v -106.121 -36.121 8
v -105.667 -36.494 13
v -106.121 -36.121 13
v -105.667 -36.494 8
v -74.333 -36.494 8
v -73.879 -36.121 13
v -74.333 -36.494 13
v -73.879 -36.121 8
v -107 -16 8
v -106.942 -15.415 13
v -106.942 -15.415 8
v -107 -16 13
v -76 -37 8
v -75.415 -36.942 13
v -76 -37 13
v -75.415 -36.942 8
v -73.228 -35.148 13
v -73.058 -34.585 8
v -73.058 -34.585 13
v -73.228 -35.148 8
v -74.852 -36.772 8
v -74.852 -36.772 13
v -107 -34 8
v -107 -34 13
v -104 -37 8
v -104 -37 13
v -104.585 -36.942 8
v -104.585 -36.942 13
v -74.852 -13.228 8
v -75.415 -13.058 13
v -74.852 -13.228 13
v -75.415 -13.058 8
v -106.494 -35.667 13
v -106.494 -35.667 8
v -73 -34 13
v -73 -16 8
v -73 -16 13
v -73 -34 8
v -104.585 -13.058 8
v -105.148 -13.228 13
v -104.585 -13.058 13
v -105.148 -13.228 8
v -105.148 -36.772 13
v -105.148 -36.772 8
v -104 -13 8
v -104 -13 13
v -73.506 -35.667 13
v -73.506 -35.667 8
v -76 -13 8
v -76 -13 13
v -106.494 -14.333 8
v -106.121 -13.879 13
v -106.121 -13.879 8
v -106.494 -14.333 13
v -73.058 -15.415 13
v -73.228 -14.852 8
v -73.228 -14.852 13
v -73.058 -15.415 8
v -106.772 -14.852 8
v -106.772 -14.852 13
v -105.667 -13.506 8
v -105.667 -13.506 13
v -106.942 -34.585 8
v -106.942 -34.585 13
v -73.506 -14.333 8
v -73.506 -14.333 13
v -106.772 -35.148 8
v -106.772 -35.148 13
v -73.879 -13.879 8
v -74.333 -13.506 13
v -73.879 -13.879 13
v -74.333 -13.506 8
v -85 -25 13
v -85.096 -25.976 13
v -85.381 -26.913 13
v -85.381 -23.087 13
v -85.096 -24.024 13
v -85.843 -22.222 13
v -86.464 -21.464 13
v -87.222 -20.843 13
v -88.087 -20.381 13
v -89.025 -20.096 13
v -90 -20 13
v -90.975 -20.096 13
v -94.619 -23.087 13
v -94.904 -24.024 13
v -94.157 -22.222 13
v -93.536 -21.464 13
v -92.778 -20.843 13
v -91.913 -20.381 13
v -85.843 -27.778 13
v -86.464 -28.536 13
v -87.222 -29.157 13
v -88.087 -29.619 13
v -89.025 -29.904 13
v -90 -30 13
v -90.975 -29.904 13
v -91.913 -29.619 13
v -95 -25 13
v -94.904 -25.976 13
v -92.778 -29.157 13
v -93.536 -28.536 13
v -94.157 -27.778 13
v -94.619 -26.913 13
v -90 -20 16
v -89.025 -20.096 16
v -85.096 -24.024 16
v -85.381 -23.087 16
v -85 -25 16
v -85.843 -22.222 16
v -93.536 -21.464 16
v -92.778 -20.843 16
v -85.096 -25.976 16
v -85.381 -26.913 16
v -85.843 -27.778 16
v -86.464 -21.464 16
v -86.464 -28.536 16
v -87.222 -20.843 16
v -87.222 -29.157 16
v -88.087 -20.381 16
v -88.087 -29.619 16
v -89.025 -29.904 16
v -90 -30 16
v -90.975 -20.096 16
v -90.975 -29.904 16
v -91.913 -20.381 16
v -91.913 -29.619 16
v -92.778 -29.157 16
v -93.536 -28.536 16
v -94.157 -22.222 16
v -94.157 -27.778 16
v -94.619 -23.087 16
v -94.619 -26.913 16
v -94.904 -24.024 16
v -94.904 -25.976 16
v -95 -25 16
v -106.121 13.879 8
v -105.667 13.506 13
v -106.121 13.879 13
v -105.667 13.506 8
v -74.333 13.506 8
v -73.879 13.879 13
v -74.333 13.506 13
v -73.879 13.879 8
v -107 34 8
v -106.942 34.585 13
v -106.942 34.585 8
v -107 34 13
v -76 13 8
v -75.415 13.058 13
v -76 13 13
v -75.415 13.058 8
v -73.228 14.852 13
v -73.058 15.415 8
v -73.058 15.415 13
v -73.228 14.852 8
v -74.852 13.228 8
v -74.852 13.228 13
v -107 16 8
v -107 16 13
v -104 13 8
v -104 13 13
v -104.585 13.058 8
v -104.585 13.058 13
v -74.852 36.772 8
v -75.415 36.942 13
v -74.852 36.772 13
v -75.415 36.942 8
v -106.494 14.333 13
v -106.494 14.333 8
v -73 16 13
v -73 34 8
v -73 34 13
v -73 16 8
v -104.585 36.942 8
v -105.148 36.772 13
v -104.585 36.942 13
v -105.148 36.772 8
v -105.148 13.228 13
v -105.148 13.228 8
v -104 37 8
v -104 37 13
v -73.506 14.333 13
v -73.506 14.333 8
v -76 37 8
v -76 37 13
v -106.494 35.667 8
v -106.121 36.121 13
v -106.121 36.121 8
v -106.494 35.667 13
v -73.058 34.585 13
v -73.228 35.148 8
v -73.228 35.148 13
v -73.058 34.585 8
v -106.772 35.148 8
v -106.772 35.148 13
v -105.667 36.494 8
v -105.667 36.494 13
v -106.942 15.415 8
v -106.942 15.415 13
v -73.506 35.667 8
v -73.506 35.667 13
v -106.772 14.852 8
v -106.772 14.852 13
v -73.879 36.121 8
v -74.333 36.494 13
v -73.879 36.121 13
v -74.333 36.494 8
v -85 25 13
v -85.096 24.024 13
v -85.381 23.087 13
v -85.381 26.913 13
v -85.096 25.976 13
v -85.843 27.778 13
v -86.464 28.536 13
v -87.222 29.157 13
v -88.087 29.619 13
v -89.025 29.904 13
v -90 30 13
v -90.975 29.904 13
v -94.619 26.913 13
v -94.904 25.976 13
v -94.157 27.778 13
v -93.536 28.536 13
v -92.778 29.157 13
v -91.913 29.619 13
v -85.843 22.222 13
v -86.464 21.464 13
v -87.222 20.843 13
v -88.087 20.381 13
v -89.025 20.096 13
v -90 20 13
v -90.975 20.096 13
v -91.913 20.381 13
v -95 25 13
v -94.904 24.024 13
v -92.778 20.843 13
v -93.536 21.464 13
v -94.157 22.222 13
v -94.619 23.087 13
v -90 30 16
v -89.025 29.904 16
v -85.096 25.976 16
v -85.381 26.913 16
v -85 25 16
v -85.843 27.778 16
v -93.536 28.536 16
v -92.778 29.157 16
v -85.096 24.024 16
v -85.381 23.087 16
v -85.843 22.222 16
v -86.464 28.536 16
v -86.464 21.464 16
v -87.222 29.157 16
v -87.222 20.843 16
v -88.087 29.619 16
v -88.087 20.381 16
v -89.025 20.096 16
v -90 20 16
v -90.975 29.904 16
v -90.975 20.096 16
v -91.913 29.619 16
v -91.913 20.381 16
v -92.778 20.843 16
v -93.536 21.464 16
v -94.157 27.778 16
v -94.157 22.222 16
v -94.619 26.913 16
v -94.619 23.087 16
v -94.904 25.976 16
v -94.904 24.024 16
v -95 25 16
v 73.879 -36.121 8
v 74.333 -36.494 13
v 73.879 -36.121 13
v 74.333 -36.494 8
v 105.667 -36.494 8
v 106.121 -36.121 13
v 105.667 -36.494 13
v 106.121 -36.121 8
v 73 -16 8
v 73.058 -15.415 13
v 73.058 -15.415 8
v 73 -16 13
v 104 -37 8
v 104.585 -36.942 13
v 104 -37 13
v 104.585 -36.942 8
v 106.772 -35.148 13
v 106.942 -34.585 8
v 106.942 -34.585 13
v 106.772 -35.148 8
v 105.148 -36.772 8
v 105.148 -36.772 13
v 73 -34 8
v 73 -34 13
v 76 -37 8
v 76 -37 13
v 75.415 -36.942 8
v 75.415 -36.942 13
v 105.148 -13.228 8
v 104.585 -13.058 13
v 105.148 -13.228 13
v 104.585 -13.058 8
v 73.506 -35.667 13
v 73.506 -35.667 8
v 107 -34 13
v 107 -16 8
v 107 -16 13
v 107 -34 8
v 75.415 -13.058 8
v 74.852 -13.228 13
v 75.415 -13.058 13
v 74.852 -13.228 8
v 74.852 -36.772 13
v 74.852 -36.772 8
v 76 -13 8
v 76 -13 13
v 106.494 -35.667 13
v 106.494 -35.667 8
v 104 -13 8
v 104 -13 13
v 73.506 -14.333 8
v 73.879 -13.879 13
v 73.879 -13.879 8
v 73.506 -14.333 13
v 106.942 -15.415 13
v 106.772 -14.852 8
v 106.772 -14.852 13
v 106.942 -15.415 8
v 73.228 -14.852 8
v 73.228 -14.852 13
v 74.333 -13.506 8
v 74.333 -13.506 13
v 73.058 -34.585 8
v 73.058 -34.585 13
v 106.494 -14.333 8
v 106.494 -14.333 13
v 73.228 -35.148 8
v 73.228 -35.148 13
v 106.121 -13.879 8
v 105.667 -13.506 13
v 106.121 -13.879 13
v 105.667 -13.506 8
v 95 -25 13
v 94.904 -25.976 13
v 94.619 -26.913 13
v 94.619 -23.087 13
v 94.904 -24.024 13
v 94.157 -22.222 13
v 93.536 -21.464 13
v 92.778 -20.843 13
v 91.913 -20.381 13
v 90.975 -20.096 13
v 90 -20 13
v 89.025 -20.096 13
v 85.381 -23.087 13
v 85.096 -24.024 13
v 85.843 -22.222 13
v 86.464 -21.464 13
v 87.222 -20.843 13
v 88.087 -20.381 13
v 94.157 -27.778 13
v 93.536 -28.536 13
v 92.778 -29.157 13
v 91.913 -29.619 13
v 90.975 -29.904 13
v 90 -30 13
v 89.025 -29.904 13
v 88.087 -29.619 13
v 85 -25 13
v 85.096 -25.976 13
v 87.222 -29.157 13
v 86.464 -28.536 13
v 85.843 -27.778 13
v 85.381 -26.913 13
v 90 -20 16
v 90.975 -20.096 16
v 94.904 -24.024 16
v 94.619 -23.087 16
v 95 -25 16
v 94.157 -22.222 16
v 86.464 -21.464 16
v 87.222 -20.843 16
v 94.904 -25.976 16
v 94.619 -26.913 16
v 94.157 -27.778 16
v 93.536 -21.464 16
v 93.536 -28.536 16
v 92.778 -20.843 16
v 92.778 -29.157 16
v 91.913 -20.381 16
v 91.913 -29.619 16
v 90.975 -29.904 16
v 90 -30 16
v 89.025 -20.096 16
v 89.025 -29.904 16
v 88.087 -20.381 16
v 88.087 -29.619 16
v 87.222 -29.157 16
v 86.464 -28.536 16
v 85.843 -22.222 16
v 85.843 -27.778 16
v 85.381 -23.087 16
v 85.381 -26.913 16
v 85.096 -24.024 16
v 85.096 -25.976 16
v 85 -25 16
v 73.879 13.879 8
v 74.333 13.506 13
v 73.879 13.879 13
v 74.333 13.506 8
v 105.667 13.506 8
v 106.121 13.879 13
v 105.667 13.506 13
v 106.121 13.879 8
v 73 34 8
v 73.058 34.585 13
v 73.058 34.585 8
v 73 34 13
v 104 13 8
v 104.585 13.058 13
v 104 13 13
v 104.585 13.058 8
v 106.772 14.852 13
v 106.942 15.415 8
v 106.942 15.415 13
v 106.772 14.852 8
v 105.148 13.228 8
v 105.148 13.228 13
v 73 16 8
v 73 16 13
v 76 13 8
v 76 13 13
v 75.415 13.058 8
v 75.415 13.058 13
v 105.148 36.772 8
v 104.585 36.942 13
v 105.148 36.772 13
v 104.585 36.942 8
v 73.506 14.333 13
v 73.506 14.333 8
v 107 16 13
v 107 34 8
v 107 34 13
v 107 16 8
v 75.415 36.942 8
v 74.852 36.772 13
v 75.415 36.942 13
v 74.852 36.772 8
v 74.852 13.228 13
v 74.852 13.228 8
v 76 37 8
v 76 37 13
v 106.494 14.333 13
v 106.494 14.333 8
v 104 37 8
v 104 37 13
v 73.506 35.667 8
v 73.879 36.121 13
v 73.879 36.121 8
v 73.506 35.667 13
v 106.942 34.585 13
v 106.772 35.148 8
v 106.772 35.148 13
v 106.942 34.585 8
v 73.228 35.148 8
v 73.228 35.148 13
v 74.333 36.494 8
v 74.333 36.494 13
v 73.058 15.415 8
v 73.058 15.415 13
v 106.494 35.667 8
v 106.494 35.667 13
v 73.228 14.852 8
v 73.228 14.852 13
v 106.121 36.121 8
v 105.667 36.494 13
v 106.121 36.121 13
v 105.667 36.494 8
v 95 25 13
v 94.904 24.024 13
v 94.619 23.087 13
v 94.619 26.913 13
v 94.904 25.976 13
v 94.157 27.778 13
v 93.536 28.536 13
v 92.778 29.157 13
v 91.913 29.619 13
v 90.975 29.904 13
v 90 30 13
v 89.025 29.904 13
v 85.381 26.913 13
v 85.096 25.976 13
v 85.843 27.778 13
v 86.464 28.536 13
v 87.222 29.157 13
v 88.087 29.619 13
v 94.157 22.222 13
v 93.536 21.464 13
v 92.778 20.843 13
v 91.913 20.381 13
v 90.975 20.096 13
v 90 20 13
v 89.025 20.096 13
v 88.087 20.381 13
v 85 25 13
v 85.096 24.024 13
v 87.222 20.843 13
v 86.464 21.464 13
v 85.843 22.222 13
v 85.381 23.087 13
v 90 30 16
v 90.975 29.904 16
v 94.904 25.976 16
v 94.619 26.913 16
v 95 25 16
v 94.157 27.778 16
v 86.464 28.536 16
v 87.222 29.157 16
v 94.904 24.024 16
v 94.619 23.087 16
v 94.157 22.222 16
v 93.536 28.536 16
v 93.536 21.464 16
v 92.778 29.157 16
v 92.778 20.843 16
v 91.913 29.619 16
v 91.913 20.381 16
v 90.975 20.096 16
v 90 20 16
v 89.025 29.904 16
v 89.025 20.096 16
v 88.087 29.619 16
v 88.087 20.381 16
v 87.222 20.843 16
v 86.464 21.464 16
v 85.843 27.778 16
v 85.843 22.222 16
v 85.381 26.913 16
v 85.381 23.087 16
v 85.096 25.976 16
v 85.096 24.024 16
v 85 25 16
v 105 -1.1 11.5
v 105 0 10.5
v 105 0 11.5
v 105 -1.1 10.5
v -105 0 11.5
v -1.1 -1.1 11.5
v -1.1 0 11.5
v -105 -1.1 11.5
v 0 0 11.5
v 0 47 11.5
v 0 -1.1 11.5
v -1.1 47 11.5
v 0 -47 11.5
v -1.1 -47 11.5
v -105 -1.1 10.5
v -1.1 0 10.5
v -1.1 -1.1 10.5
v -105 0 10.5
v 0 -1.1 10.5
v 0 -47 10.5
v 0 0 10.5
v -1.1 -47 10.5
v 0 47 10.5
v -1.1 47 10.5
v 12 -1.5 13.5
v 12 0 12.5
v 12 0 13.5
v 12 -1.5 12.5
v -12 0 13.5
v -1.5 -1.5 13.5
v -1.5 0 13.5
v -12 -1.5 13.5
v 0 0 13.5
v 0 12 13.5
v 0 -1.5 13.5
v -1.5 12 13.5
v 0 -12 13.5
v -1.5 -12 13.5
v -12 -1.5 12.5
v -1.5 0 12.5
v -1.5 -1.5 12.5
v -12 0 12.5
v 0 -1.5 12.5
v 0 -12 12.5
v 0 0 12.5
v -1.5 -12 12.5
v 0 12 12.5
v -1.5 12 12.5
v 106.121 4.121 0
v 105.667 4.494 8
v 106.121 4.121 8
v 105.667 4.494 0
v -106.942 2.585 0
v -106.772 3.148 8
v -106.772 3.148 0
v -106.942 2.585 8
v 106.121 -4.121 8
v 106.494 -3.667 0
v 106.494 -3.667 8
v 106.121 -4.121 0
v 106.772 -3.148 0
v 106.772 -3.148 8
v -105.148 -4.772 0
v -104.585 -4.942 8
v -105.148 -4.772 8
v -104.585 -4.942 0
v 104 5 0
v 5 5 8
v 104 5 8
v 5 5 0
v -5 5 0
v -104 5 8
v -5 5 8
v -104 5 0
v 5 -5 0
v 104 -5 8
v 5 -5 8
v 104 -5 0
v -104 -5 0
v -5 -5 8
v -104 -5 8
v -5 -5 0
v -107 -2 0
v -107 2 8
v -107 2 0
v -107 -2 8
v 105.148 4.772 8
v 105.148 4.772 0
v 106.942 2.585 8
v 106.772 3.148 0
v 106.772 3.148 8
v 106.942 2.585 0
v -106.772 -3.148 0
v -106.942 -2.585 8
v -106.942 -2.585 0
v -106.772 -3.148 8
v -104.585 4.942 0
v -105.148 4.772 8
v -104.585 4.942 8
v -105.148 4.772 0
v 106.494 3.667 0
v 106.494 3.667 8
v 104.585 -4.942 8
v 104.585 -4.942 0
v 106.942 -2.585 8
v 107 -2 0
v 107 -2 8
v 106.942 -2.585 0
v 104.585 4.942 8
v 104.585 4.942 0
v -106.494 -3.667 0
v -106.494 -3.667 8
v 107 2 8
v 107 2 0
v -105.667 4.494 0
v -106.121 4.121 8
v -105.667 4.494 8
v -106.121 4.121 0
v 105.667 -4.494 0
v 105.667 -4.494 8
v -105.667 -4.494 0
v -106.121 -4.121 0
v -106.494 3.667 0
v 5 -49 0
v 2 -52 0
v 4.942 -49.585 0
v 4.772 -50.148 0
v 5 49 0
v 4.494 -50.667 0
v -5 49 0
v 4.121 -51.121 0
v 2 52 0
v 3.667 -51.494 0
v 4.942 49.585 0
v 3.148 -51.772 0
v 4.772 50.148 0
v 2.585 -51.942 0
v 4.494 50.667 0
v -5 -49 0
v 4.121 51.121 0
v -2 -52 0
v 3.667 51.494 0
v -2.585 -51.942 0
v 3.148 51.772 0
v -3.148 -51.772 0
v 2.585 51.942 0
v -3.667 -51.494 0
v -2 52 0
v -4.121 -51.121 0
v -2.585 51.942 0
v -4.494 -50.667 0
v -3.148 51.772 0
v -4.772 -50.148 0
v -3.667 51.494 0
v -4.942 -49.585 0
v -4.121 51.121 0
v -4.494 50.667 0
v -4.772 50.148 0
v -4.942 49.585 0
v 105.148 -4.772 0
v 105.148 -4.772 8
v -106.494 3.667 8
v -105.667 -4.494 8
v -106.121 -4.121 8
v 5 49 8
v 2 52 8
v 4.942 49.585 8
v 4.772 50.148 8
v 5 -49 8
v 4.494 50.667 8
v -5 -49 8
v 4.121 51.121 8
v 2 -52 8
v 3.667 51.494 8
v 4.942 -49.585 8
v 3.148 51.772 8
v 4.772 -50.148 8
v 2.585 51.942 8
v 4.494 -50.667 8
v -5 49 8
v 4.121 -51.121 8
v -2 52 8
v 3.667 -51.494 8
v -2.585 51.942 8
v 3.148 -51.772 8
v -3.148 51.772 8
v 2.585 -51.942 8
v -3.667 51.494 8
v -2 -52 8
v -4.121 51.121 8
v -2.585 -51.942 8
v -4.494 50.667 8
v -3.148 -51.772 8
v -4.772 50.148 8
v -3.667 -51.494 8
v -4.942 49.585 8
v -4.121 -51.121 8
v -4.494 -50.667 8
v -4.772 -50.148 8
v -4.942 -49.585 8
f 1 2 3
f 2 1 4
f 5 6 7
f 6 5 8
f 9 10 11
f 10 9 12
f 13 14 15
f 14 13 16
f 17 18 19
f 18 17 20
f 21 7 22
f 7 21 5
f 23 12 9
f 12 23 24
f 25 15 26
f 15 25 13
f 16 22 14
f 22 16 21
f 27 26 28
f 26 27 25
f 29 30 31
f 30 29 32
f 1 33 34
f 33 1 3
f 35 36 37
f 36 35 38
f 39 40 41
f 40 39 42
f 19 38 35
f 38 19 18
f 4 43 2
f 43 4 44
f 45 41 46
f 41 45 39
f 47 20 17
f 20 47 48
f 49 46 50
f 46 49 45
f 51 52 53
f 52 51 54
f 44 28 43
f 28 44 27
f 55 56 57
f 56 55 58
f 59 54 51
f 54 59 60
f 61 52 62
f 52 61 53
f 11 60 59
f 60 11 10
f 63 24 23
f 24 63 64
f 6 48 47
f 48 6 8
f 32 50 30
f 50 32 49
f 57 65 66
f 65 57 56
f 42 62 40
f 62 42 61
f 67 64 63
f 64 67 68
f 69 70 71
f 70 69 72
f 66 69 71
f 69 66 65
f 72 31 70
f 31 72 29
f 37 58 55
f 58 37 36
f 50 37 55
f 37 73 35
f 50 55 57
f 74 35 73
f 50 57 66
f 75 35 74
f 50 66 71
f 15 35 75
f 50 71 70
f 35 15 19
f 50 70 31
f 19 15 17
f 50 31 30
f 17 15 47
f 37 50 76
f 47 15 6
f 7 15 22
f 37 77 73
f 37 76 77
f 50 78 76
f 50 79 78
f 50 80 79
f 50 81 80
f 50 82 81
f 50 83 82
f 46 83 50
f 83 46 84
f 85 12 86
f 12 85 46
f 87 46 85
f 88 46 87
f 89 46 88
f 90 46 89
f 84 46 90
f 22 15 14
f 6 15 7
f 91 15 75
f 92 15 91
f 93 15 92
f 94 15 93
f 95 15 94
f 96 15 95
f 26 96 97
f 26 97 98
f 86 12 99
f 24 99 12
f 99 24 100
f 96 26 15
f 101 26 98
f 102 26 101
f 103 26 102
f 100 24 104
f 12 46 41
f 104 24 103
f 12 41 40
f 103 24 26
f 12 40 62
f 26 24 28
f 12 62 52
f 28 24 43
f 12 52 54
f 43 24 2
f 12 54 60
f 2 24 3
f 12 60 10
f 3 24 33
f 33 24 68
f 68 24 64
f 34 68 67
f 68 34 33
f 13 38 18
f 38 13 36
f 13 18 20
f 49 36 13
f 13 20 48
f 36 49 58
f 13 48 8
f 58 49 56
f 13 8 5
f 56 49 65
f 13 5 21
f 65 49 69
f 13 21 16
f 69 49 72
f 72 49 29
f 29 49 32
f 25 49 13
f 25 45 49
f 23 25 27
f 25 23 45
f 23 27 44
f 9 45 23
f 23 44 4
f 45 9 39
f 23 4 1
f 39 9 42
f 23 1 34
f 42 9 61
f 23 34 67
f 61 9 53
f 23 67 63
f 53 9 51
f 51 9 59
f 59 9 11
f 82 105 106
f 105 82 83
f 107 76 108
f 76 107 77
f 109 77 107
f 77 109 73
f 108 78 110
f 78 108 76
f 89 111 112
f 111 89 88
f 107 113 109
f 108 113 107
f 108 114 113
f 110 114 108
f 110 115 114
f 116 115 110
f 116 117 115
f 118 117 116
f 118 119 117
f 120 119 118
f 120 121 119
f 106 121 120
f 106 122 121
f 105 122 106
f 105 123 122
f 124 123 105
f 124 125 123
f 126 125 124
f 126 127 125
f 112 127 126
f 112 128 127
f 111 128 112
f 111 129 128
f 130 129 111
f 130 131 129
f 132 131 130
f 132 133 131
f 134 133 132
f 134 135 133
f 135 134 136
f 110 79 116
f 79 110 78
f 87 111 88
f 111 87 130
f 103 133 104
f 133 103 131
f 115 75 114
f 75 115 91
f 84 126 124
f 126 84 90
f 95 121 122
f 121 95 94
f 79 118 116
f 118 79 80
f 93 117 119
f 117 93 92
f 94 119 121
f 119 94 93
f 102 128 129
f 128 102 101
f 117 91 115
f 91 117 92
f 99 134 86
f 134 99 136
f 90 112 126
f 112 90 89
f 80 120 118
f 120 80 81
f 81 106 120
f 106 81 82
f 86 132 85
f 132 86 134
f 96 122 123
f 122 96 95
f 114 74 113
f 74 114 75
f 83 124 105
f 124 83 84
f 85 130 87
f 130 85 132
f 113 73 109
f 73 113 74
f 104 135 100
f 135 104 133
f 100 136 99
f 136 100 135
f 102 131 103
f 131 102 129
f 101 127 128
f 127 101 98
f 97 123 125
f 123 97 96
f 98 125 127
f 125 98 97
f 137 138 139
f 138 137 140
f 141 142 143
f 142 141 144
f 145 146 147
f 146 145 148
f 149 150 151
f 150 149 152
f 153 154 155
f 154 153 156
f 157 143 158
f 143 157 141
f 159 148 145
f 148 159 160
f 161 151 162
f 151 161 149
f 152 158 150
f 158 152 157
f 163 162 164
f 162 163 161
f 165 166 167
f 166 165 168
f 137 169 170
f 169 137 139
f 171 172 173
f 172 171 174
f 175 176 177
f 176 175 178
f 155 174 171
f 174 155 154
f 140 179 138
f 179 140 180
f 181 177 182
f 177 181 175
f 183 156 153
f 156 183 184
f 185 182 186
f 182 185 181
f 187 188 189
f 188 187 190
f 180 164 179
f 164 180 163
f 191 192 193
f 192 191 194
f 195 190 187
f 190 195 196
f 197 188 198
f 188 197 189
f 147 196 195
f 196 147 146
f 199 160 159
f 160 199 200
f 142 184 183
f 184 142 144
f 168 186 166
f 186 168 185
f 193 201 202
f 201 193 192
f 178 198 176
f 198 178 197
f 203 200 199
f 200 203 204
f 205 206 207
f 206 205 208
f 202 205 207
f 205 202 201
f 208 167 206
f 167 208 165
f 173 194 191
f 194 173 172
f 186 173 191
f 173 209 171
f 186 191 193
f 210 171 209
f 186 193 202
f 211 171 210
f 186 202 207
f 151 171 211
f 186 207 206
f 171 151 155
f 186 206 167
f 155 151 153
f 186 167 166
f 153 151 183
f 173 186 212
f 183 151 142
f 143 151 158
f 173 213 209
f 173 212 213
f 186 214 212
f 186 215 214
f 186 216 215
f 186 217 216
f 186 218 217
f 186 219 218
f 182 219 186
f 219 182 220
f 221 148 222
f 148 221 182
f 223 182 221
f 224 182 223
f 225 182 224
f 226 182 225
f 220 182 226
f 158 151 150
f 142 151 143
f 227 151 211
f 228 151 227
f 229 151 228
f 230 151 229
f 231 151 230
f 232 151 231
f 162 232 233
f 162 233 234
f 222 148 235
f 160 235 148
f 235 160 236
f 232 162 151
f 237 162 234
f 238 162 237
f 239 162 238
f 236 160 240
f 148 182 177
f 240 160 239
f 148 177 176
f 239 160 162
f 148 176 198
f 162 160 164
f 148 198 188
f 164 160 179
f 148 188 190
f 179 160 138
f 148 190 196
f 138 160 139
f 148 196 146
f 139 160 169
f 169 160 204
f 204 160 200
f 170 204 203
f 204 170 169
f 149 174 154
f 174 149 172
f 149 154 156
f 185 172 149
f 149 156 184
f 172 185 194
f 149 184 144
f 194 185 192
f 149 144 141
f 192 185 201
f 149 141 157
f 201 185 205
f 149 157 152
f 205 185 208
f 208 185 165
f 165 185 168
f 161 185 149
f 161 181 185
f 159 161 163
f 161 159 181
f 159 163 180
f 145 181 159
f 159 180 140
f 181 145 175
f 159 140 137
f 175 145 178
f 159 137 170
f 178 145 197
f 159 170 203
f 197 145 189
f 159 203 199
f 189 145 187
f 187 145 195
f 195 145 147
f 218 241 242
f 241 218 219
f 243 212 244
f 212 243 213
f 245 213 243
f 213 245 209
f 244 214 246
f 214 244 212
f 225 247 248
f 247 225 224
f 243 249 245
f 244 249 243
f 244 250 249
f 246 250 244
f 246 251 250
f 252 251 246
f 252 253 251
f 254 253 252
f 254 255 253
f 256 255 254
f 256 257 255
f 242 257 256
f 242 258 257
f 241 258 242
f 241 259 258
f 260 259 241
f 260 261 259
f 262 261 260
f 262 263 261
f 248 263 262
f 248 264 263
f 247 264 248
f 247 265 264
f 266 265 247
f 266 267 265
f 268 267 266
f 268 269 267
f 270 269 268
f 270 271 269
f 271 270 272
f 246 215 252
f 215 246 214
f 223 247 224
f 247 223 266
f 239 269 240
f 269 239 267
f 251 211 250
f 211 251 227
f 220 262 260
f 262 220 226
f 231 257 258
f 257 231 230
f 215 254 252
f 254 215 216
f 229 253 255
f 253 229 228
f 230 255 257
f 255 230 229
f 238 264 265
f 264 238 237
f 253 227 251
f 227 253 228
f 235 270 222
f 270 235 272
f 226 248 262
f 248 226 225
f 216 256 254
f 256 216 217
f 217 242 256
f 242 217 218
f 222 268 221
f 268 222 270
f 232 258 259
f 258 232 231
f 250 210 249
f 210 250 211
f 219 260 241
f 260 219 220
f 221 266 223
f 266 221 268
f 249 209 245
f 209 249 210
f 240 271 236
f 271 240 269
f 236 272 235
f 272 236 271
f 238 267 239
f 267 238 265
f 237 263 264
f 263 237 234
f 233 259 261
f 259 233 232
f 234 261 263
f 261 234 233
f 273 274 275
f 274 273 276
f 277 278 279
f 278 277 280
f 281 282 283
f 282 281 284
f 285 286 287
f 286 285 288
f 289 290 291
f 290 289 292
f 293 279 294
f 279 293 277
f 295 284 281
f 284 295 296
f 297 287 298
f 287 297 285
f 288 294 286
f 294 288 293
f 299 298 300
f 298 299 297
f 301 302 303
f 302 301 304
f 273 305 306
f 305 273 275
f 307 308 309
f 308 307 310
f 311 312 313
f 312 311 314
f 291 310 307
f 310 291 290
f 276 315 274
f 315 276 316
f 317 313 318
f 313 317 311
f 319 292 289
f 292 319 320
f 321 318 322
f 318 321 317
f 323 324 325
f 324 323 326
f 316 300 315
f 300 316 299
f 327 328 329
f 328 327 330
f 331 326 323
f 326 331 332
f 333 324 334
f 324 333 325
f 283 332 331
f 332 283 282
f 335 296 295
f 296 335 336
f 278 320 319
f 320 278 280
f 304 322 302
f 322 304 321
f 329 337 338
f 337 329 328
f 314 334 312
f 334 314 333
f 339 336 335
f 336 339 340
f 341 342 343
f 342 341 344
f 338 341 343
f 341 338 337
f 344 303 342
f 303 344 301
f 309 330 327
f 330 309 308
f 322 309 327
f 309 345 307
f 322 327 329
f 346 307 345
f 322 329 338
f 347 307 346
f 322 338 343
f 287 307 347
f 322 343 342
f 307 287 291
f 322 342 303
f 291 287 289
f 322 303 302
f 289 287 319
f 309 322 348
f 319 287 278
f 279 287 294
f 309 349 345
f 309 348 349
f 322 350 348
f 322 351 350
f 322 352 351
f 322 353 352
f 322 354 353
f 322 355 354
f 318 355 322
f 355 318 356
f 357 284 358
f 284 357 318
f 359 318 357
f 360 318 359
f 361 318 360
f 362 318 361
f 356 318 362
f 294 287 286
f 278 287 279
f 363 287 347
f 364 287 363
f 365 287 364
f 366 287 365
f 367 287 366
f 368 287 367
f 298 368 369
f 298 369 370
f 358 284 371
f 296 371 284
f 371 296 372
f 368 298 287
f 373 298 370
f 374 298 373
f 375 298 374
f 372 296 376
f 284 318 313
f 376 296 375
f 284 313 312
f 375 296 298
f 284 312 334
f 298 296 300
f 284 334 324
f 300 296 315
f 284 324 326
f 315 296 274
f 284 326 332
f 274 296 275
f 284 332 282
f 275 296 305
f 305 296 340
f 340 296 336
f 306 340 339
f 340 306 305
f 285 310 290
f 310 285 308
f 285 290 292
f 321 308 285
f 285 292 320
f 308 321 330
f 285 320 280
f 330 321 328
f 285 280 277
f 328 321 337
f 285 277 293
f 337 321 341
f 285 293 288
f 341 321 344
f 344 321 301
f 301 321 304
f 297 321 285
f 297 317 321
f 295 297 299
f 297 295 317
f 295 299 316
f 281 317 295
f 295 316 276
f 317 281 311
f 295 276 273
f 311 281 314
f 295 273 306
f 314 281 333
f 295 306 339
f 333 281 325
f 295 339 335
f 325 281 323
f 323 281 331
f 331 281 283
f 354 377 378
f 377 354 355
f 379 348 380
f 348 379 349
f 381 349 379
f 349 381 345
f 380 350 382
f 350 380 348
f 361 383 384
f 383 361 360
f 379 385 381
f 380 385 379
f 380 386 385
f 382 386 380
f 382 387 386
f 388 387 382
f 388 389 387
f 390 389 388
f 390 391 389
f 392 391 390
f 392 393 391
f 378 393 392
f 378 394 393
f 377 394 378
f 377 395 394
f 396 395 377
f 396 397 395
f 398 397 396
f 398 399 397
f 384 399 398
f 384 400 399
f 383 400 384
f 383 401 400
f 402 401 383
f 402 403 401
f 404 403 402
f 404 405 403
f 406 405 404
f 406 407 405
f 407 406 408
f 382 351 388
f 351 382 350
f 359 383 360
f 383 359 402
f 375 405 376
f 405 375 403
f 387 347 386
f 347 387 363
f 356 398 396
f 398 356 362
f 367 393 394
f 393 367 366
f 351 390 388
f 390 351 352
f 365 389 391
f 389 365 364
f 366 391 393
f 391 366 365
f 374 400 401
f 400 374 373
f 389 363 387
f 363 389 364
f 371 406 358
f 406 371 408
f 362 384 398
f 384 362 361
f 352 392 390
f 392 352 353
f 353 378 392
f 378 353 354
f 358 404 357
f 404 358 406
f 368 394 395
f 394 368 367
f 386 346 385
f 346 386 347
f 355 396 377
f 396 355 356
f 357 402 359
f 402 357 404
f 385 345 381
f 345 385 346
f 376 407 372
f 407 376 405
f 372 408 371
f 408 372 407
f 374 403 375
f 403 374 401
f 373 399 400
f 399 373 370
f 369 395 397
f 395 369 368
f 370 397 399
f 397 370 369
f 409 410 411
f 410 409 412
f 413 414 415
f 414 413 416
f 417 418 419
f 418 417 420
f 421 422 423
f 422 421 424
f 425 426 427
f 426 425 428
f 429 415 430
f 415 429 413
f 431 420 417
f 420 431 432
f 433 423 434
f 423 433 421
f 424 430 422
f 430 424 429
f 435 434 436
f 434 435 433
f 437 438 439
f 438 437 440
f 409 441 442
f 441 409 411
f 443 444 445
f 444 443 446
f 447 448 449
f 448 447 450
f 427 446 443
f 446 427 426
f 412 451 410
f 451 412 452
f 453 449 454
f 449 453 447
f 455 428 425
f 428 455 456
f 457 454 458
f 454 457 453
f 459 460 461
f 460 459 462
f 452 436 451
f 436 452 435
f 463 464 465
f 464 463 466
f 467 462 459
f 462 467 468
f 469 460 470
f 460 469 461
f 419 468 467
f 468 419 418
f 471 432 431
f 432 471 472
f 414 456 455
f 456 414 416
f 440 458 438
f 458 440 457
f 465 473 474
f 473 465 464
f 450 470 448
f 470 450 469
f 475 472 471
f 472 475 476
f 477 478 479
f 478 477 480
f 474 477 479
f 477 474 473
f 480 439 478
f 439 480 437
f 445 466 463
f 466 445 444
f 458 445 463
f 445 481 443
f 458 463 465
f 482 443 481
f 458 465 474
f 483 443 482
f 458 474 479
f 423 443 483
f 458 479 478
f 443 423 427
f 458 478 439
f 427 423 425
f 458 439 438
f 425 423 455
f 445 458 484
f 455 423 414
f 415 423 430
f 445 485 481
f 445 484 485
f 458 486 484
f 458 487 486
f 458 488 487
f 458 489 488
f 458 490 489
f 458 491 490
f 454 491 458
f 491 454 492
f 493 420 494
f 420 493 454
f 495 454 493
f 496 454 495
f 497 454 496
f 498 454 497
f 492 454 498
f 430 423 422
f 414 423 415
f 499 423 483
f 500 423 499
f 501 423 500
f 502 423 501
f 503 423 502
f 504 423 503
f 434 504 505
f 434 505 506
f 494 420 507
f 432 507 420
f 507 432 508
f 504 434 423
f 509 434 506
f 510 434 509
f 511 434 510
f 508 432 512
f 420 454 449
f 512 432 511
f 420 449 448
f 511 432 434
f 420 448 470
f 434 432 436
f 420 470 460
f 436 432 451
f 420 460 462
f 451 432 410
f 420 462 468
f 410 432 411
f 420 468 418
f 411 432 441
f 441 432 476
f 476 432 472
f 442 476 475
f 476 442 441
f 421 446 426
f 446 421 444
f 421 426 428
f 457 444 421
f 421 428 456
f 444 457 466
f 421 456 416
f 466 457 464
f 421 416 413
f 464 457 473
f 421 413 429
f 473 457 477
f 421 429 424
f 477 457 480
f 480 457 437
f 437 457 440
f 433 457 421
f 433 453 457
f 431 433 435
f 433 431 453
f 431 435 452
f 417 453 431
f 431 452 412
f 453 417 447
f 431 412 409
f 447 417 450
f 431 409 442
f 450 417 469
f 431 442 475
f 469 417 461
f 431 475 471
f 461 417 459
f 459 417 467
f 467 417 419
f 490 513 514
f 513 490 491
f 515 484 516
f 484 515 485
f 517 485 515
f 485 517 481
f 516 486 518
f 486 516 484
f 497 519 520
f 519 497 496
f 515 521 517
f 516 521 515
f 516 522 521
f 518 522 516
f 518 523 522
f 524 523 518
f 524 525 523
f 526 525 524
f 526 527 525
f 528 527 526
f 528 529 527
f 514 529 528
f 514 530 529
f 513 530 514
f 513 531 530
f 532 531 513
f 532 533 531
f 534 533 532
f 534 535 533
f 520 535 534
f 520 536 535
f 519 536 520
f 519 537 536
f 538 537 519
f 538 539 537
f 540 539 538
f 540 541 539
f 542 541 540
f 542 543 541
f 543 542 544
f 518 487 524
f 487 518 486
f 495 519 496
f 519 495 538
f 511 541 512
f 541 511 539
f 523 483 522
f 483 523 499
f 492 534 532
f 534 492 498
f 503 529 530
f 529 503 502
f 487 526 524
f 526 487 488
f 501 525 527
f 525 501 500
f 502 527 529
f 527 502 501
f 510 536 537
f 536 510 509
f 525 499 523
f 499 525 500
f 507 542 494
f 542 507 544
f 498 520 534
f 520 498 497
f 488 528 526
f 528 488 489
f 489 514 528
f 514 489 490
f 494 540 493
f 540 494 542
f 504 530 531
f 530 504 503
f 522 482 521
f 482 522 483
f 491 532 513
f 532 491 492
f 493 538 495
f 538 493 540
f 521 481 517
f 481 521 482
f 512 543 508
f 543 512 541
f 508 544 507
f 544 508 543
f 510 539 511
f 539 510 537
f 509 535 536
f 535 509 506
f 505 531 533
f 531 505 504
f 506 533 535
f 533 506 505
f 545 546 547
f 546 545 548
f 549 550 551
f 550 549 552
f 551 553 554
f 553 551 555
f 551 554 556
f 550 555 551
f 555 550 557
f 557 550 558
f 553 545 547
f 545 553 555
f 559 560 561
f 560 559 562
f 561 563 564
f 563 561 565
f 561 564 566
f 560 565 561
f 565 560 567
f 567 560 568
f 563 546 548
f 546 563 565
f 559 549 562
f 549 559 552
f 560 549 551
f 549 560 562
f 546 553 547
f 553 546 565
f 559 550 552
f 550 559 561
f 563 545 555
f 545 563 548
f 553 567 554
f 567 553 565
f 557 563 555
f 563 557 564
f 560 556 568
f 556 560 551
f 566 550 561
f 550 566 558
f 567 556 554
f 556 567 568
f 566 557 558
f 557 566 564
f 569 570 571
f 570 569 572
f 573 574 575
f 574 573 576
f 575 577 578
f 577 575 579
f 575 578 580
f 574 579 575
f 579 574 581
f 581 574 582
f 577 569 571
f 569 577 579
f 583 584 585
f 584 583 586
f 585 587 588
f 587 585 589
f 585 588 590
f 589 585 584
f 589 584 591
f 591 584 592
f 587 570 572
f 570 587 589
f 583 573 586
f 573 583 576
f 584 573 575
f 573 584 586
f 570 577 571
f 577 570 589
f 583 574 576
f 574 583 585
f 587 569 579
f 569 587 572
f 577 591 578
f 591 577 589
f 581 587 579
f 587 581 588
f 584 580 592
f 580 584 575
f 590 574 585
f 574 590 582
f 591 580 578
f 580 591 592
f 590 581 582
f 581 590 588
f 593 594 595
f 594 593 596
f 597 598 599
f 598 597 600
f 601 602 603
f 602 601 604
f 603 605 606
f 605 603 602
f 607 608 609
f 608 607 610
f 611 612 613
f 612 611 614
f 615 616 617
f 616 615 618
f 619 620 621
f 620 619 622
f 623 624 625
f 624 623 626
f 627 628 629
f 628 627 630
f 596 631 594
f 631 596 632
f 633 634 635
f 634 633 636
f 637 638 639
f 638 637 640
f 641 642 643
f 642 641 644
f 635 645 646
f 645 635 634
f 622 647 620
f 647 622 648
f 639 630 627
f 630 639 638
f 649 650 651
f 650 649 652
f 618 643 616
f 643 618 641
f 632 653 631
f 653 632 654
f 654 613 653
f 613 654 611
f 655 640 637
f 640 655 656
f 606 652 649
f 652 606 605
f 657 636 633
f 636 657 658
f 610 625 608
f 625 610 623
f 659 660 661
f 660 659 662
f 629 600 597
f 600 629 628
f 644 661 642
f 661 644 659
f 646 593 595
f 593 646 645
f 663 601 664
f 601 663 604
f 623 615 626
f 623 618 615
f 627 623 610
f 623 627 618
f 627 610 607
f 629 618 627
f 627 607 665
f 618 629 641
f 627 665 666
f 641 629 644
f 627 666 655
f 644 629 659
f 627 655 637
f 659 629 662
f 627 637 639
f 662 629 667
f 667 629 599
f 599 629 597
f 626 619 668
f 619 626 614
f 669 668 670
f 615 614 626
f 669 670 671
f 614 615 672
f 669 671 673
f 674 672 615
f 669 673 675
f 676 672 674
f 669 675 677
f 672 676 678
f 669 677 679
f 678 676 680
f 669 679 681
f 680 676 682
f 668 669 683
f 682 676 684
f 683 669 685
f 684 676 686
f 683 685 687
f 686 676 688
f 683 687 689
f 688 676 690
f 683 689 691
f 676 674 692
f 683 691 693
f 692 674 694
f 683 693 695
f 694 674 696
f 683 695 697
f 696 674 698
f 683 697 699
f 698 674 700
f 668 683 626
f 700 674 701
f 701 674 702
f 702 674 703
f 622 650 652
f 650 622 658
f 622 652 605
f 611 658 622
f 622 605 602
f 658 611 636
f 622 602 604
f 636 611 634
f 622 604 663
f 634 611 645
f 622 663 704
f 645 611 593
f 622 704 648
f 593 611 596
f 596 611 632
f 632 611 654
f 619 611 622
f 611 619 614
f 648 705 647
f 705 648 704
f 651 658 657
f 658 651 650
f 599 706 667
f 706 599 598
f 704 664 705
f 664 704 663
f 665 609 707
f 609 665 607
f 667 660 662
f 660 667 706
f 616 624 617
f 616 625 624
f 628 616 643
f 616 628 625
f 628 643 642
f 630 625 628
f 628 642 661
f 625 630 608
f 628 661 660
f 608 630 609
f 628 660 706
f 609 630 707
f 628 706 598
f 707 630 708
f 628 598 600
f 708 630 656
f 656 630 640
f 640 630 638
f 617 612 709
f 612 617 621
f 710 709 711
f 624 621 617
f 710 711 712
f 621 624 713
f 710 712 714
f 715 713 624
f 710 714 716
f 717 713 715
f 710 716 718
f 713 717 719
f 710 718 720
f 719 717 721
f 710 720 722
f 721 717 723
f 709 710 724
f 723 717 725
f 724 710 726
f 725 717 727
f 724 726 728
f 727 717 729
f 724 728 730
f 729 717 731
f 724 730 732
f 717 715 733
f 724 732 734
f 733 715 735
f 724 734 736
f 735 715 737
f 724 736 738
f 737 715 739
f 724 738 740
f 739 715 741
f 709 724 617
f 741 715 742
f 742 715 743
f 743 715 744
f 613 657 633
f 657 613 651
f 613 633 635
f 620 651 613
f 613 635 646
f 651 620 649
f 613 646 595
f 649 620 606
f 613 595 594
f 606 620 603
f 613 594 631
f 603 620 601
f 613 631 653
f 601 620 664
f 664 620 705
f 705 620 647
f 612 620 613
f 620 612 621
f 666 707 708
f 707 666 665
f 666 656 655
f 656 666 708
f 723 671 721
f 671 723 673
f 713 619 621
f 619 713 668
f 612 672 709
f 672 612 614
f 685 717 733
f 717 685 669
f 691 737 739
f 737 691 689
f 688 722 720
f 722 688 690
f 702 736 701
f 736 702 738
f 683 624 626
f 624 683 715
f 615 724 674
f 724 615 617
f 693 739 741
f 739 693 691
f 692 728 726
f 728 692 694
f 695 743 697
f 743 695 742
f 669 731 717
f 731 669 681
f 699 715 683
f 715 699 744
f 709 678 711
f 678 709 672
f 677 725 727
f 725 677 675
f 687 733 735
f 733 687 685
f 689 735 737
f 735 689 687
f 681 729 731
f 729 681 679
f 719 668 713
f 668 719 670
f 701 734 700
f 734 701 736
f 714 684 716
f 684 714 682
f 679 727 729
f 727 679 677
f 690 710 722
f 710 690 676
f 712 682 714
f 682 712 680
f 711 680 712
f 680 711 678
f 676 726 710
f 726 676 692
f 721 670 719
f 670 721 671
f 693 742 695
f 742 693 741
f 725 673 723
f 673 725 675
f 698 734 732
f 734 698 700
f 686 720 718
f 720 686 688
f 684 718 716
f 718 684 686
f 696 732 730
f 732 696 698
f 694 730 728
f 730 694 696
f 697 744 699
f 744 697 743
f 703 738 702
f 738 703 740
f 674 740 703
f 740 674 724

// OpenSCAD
// file: ../s1_parameters.scad
// Shared S1 prototype parameters.
// Units are millimeters. Values are provisional fit/geometry defaults.

$fn = 32;

s1_length_over_coupler_faces = 320;
s1_structural_deck_length = 280;
s1_sled_width = 72;
s1_sled_height = 14;
s1_deck_height_above_g0 = 30;
s1_wall_thickness = 2.4;
s1_corner_radius = 6;
s1_printer_tolerance = 0.35;
s1_min_feature = 1.2;

s1_module_length = 240;
s1_module_width = 64;
s1_module_interface_height = 5;
s1_module_corner_radius = 7;

s1_mount_x = 90;
s1_mount_y = 24;
s1_mount_pin_diameter = 5;
s1_mount_clearance = 0.35;
s1_latch_slot_length = 18;
s1_latch_slot_width = 6;

s1_coupler_pivot_spacing = 280;
s1_coupler_drawbar_length = 28;
s1_coupler_pivot_diameter = 8;
s1_coupler_yaw_normal_deg = 15;
s1_coupler_yaw_hard_stop_deg = 18;
s1_coupler_vertical_play = 1.5;

s1_ballast_pocket_length = 36;
s1_ballast_pocket_width = 18;
s1_ballast_pocket_depth = 6;
s1_ballast_channel_length = 108;
s1_ballast_channel_width = 14;
s1_ballast_channel_depth = 5;

s1_split_key_length = 14;
s1_split_key_width = 8;
s1_split_key_height = 5;
s1_split_plane_x = 0;

s1_support_node_x = 180;
s1_support_node_y = 50;

s1_bed_x = 220;
s1_bed_y = 220;

module rounded_box(size, radius = 3) {
  r = min(radius, min(size[0], size[1]) / 2 - 0.01);
  hull() {
    for (x = [-size[0] / 2 + r, size[0] / 2 - r])
      for (y = [-size[1] / 2 + r, size[1] / 2 - r])
        translate([x, y, 0])
          cylinder(h = size[2], r = r);
  }
}

module datum_cross(size = 18, height = 0.9, width = 1.4) {
  translate([0, -width / 2, 0]) cube([size, width, height], center = true);
  translate([-width / 2, 0, 0]) cube([width, size, height], center = true);
}

module centerline_marks(length, width, z, height = 0.8) {
  translate([0, -0.55, z]) cube([length, 1.1, height], center = true);
  translate([-0.55, 0, z]) cube([1.1, width, height], center = true);
}

module module_attachment_positions() {
  for (x = [-s1_mount_x, s1_mount_x])
    for (y = [-s1_mount_y, s1_mount_y])
      translate([x, y, 0]) children();
}

module support_node_positions() {
  for (x = [-s1_support_node_x / 2, s1_support_node_x / 2])
    for (y = [-s1_support_node_y / 2, s1_support_node_y / 2])
      translate([x, y, 0]) children();
}

module ballast_pocket_positions() {
  for (x = [-70, 70])
    for (y = [-20, 20])
      translate([x, y, 0]) children();
}

module mount_pin_holes(height = 30, clearance = s1_mount_clearance) {
  module_attachment_positions()
    cylinder(h = height, r = s1_mount_pin_diameter / 2 + clearance, center = true);
}

module latch_slots(height = 20, clearance = s1_mount_clearance) {
  module_attachment_positions()
    translate([0, 0, 0])
      rounded_box([s1_latch_slot_length + clearance, s1_latch_slot_width + clearance, height], 1.5);
}

module module_interface_cutouts(height = 20, clearance = s1_mount_clearance) {
  mount_pin_holes(height = height, clearance = clearance);
  latch_slots(height = height, clearance = clearance);
}

module module_interface_base(height = s1_module_interface_height, radius = 6, cutout_height = 14) {
  difference() {
    rounded_box([s1_module_length, s1_module_width, height], radius);
    module_interface_cutouts(height = cutout_height);
  }
}

module module_interface_underside(height = 4) {
  module_attachment_positions()
    cylinder(h = height, r = s1_mount_pin_diameter / 2, center = false);
}

module split_front_clip(length, width = 180, height = 180) {
  translate([length / 4 + 0.02, 0, height / 2 - 20])
    cube([length / 2 + 0.04, width, height], center = true);
}

module split_rear_clip(length, width = 180, height = 180) {
  translate([-length / 4 - 0.02, 0, height / 2 - 20])
    cube([length / 2 + 0.04, width, height], center = true);
}

module split_alignment_male(z = 2, clearance = 0) {
  for (y = [-18, 18])
    translate([
      -s1_split_key_length + clearance,
      y - s1_split_key_width / 2 + clearance,
      z
    ])
      cube([
        s1_split_key_length + 10,
        s1_split_key_width - 2 * clearance,
        s1_split_key_height - 2 * clearance
      ]);
}

module split_alignment_receiver(z = 2) {
  split_alignment_male(z = z - s1_printer_tolerance / 2, clearance = -s1_printer_tolerance);
}

module split_alignment_sockets(side = "front", z = 0.4) {
  socket_depth = min(s1_split_key_height, 3.0 + z);
  socket_length = s1_split_key_length + 10;
  socket_width = s1_split_key_width + 2 * s1_printer_tolerance;
  x_center = side == "rear" ? -socket_length / 2 + 0.4 : socket_length / 2 - 0.4;
  for (y = [-18, 18])
    translate([x_center, y, -0.05])
      rounded_box([socket_length, socket_width, socket_depth + 0.05], 1.1);
}

module loose_alignment_keys() {
  for (y = [-8, 8])
    translate([0, y, 0])
      rounded_box([44, s1_split_key_width - 0.4, s1_split_key_height - 0.4], 1.2);
}

module module_split_keys_front(z = 2) {
  split_alignment_male(z = z);
}

module module_split_keys_rear(z = 2) {
  split_alignment_receiver(z = z);
}

module aerodynamic_pod_shell(length, width, height, nose = 24, roof_inset = 10, radius = 7) {
  hull() {
    rounded_box([length, width, 3], radius);
    translate([0, 0, height - 3])
      rounded_box([length - 2 * nose, width - roof_inset, 3], max(2, radius - 2));
  }
}

module side_panel_breaks(length, width, z, height = 1.0) {
  for (x = [-length / 4, 0, length / 4])
    translate([x, width / 2 - 8, z])
      cube([1.2, 1.4, height], center = true);
  for (x = [-length / 4, 0, length / 4])
    translate([x, -width / 2 + 8, z])
      cube([1.2, 1.4, height], center = true);
}

module cg_marker(z, size = 16) {
  translate([0, 0, z]) datum_cross(size = size, height = 0.8, width = 1.2);
}

module ballast_blocks(z = 5) {
  ballast_pocket_positions()
    translate([0, 0, z])
      rounded_box([s1_ballast_pocket_length - 5, s1_ballast_pocket_width - 4, 6], 2);
}

module module_half(part, length, width, height) {
  if (part == "front")
    split_front_clip(length, width, height) children();
  else if (part == "rear")
    split_rear_clip(length, width, height) children();
  else
    children();
}
// main file
include <../s1_parameters.scad>

module scale_pad() {
  union() {
    rounded_box([34, 24, 5], 3);
    translate([0, 0, 5])
      cylinder(h = 3, r = 5);
  }
}

module cg_test_fixture() {
  union() {
    rounded_box([s1_support_node_x + 34, 10, 8], 3);
    rounded_box([10, s1_support_node_y + 54, 8], 3);
    support_node_positions()
      translate([0, 0, 8])
        scale_pad();
    translate([0, 0, 11])
      centerline_marks(s1_support_node_x + 30, s1_support_node_y + 44, 0, height = 1.0);
    translate([0, 0, 13])
      datum_cross(size = 24, height = 1.0, width = 1.5);
  }
}

cg_test_fixture();
